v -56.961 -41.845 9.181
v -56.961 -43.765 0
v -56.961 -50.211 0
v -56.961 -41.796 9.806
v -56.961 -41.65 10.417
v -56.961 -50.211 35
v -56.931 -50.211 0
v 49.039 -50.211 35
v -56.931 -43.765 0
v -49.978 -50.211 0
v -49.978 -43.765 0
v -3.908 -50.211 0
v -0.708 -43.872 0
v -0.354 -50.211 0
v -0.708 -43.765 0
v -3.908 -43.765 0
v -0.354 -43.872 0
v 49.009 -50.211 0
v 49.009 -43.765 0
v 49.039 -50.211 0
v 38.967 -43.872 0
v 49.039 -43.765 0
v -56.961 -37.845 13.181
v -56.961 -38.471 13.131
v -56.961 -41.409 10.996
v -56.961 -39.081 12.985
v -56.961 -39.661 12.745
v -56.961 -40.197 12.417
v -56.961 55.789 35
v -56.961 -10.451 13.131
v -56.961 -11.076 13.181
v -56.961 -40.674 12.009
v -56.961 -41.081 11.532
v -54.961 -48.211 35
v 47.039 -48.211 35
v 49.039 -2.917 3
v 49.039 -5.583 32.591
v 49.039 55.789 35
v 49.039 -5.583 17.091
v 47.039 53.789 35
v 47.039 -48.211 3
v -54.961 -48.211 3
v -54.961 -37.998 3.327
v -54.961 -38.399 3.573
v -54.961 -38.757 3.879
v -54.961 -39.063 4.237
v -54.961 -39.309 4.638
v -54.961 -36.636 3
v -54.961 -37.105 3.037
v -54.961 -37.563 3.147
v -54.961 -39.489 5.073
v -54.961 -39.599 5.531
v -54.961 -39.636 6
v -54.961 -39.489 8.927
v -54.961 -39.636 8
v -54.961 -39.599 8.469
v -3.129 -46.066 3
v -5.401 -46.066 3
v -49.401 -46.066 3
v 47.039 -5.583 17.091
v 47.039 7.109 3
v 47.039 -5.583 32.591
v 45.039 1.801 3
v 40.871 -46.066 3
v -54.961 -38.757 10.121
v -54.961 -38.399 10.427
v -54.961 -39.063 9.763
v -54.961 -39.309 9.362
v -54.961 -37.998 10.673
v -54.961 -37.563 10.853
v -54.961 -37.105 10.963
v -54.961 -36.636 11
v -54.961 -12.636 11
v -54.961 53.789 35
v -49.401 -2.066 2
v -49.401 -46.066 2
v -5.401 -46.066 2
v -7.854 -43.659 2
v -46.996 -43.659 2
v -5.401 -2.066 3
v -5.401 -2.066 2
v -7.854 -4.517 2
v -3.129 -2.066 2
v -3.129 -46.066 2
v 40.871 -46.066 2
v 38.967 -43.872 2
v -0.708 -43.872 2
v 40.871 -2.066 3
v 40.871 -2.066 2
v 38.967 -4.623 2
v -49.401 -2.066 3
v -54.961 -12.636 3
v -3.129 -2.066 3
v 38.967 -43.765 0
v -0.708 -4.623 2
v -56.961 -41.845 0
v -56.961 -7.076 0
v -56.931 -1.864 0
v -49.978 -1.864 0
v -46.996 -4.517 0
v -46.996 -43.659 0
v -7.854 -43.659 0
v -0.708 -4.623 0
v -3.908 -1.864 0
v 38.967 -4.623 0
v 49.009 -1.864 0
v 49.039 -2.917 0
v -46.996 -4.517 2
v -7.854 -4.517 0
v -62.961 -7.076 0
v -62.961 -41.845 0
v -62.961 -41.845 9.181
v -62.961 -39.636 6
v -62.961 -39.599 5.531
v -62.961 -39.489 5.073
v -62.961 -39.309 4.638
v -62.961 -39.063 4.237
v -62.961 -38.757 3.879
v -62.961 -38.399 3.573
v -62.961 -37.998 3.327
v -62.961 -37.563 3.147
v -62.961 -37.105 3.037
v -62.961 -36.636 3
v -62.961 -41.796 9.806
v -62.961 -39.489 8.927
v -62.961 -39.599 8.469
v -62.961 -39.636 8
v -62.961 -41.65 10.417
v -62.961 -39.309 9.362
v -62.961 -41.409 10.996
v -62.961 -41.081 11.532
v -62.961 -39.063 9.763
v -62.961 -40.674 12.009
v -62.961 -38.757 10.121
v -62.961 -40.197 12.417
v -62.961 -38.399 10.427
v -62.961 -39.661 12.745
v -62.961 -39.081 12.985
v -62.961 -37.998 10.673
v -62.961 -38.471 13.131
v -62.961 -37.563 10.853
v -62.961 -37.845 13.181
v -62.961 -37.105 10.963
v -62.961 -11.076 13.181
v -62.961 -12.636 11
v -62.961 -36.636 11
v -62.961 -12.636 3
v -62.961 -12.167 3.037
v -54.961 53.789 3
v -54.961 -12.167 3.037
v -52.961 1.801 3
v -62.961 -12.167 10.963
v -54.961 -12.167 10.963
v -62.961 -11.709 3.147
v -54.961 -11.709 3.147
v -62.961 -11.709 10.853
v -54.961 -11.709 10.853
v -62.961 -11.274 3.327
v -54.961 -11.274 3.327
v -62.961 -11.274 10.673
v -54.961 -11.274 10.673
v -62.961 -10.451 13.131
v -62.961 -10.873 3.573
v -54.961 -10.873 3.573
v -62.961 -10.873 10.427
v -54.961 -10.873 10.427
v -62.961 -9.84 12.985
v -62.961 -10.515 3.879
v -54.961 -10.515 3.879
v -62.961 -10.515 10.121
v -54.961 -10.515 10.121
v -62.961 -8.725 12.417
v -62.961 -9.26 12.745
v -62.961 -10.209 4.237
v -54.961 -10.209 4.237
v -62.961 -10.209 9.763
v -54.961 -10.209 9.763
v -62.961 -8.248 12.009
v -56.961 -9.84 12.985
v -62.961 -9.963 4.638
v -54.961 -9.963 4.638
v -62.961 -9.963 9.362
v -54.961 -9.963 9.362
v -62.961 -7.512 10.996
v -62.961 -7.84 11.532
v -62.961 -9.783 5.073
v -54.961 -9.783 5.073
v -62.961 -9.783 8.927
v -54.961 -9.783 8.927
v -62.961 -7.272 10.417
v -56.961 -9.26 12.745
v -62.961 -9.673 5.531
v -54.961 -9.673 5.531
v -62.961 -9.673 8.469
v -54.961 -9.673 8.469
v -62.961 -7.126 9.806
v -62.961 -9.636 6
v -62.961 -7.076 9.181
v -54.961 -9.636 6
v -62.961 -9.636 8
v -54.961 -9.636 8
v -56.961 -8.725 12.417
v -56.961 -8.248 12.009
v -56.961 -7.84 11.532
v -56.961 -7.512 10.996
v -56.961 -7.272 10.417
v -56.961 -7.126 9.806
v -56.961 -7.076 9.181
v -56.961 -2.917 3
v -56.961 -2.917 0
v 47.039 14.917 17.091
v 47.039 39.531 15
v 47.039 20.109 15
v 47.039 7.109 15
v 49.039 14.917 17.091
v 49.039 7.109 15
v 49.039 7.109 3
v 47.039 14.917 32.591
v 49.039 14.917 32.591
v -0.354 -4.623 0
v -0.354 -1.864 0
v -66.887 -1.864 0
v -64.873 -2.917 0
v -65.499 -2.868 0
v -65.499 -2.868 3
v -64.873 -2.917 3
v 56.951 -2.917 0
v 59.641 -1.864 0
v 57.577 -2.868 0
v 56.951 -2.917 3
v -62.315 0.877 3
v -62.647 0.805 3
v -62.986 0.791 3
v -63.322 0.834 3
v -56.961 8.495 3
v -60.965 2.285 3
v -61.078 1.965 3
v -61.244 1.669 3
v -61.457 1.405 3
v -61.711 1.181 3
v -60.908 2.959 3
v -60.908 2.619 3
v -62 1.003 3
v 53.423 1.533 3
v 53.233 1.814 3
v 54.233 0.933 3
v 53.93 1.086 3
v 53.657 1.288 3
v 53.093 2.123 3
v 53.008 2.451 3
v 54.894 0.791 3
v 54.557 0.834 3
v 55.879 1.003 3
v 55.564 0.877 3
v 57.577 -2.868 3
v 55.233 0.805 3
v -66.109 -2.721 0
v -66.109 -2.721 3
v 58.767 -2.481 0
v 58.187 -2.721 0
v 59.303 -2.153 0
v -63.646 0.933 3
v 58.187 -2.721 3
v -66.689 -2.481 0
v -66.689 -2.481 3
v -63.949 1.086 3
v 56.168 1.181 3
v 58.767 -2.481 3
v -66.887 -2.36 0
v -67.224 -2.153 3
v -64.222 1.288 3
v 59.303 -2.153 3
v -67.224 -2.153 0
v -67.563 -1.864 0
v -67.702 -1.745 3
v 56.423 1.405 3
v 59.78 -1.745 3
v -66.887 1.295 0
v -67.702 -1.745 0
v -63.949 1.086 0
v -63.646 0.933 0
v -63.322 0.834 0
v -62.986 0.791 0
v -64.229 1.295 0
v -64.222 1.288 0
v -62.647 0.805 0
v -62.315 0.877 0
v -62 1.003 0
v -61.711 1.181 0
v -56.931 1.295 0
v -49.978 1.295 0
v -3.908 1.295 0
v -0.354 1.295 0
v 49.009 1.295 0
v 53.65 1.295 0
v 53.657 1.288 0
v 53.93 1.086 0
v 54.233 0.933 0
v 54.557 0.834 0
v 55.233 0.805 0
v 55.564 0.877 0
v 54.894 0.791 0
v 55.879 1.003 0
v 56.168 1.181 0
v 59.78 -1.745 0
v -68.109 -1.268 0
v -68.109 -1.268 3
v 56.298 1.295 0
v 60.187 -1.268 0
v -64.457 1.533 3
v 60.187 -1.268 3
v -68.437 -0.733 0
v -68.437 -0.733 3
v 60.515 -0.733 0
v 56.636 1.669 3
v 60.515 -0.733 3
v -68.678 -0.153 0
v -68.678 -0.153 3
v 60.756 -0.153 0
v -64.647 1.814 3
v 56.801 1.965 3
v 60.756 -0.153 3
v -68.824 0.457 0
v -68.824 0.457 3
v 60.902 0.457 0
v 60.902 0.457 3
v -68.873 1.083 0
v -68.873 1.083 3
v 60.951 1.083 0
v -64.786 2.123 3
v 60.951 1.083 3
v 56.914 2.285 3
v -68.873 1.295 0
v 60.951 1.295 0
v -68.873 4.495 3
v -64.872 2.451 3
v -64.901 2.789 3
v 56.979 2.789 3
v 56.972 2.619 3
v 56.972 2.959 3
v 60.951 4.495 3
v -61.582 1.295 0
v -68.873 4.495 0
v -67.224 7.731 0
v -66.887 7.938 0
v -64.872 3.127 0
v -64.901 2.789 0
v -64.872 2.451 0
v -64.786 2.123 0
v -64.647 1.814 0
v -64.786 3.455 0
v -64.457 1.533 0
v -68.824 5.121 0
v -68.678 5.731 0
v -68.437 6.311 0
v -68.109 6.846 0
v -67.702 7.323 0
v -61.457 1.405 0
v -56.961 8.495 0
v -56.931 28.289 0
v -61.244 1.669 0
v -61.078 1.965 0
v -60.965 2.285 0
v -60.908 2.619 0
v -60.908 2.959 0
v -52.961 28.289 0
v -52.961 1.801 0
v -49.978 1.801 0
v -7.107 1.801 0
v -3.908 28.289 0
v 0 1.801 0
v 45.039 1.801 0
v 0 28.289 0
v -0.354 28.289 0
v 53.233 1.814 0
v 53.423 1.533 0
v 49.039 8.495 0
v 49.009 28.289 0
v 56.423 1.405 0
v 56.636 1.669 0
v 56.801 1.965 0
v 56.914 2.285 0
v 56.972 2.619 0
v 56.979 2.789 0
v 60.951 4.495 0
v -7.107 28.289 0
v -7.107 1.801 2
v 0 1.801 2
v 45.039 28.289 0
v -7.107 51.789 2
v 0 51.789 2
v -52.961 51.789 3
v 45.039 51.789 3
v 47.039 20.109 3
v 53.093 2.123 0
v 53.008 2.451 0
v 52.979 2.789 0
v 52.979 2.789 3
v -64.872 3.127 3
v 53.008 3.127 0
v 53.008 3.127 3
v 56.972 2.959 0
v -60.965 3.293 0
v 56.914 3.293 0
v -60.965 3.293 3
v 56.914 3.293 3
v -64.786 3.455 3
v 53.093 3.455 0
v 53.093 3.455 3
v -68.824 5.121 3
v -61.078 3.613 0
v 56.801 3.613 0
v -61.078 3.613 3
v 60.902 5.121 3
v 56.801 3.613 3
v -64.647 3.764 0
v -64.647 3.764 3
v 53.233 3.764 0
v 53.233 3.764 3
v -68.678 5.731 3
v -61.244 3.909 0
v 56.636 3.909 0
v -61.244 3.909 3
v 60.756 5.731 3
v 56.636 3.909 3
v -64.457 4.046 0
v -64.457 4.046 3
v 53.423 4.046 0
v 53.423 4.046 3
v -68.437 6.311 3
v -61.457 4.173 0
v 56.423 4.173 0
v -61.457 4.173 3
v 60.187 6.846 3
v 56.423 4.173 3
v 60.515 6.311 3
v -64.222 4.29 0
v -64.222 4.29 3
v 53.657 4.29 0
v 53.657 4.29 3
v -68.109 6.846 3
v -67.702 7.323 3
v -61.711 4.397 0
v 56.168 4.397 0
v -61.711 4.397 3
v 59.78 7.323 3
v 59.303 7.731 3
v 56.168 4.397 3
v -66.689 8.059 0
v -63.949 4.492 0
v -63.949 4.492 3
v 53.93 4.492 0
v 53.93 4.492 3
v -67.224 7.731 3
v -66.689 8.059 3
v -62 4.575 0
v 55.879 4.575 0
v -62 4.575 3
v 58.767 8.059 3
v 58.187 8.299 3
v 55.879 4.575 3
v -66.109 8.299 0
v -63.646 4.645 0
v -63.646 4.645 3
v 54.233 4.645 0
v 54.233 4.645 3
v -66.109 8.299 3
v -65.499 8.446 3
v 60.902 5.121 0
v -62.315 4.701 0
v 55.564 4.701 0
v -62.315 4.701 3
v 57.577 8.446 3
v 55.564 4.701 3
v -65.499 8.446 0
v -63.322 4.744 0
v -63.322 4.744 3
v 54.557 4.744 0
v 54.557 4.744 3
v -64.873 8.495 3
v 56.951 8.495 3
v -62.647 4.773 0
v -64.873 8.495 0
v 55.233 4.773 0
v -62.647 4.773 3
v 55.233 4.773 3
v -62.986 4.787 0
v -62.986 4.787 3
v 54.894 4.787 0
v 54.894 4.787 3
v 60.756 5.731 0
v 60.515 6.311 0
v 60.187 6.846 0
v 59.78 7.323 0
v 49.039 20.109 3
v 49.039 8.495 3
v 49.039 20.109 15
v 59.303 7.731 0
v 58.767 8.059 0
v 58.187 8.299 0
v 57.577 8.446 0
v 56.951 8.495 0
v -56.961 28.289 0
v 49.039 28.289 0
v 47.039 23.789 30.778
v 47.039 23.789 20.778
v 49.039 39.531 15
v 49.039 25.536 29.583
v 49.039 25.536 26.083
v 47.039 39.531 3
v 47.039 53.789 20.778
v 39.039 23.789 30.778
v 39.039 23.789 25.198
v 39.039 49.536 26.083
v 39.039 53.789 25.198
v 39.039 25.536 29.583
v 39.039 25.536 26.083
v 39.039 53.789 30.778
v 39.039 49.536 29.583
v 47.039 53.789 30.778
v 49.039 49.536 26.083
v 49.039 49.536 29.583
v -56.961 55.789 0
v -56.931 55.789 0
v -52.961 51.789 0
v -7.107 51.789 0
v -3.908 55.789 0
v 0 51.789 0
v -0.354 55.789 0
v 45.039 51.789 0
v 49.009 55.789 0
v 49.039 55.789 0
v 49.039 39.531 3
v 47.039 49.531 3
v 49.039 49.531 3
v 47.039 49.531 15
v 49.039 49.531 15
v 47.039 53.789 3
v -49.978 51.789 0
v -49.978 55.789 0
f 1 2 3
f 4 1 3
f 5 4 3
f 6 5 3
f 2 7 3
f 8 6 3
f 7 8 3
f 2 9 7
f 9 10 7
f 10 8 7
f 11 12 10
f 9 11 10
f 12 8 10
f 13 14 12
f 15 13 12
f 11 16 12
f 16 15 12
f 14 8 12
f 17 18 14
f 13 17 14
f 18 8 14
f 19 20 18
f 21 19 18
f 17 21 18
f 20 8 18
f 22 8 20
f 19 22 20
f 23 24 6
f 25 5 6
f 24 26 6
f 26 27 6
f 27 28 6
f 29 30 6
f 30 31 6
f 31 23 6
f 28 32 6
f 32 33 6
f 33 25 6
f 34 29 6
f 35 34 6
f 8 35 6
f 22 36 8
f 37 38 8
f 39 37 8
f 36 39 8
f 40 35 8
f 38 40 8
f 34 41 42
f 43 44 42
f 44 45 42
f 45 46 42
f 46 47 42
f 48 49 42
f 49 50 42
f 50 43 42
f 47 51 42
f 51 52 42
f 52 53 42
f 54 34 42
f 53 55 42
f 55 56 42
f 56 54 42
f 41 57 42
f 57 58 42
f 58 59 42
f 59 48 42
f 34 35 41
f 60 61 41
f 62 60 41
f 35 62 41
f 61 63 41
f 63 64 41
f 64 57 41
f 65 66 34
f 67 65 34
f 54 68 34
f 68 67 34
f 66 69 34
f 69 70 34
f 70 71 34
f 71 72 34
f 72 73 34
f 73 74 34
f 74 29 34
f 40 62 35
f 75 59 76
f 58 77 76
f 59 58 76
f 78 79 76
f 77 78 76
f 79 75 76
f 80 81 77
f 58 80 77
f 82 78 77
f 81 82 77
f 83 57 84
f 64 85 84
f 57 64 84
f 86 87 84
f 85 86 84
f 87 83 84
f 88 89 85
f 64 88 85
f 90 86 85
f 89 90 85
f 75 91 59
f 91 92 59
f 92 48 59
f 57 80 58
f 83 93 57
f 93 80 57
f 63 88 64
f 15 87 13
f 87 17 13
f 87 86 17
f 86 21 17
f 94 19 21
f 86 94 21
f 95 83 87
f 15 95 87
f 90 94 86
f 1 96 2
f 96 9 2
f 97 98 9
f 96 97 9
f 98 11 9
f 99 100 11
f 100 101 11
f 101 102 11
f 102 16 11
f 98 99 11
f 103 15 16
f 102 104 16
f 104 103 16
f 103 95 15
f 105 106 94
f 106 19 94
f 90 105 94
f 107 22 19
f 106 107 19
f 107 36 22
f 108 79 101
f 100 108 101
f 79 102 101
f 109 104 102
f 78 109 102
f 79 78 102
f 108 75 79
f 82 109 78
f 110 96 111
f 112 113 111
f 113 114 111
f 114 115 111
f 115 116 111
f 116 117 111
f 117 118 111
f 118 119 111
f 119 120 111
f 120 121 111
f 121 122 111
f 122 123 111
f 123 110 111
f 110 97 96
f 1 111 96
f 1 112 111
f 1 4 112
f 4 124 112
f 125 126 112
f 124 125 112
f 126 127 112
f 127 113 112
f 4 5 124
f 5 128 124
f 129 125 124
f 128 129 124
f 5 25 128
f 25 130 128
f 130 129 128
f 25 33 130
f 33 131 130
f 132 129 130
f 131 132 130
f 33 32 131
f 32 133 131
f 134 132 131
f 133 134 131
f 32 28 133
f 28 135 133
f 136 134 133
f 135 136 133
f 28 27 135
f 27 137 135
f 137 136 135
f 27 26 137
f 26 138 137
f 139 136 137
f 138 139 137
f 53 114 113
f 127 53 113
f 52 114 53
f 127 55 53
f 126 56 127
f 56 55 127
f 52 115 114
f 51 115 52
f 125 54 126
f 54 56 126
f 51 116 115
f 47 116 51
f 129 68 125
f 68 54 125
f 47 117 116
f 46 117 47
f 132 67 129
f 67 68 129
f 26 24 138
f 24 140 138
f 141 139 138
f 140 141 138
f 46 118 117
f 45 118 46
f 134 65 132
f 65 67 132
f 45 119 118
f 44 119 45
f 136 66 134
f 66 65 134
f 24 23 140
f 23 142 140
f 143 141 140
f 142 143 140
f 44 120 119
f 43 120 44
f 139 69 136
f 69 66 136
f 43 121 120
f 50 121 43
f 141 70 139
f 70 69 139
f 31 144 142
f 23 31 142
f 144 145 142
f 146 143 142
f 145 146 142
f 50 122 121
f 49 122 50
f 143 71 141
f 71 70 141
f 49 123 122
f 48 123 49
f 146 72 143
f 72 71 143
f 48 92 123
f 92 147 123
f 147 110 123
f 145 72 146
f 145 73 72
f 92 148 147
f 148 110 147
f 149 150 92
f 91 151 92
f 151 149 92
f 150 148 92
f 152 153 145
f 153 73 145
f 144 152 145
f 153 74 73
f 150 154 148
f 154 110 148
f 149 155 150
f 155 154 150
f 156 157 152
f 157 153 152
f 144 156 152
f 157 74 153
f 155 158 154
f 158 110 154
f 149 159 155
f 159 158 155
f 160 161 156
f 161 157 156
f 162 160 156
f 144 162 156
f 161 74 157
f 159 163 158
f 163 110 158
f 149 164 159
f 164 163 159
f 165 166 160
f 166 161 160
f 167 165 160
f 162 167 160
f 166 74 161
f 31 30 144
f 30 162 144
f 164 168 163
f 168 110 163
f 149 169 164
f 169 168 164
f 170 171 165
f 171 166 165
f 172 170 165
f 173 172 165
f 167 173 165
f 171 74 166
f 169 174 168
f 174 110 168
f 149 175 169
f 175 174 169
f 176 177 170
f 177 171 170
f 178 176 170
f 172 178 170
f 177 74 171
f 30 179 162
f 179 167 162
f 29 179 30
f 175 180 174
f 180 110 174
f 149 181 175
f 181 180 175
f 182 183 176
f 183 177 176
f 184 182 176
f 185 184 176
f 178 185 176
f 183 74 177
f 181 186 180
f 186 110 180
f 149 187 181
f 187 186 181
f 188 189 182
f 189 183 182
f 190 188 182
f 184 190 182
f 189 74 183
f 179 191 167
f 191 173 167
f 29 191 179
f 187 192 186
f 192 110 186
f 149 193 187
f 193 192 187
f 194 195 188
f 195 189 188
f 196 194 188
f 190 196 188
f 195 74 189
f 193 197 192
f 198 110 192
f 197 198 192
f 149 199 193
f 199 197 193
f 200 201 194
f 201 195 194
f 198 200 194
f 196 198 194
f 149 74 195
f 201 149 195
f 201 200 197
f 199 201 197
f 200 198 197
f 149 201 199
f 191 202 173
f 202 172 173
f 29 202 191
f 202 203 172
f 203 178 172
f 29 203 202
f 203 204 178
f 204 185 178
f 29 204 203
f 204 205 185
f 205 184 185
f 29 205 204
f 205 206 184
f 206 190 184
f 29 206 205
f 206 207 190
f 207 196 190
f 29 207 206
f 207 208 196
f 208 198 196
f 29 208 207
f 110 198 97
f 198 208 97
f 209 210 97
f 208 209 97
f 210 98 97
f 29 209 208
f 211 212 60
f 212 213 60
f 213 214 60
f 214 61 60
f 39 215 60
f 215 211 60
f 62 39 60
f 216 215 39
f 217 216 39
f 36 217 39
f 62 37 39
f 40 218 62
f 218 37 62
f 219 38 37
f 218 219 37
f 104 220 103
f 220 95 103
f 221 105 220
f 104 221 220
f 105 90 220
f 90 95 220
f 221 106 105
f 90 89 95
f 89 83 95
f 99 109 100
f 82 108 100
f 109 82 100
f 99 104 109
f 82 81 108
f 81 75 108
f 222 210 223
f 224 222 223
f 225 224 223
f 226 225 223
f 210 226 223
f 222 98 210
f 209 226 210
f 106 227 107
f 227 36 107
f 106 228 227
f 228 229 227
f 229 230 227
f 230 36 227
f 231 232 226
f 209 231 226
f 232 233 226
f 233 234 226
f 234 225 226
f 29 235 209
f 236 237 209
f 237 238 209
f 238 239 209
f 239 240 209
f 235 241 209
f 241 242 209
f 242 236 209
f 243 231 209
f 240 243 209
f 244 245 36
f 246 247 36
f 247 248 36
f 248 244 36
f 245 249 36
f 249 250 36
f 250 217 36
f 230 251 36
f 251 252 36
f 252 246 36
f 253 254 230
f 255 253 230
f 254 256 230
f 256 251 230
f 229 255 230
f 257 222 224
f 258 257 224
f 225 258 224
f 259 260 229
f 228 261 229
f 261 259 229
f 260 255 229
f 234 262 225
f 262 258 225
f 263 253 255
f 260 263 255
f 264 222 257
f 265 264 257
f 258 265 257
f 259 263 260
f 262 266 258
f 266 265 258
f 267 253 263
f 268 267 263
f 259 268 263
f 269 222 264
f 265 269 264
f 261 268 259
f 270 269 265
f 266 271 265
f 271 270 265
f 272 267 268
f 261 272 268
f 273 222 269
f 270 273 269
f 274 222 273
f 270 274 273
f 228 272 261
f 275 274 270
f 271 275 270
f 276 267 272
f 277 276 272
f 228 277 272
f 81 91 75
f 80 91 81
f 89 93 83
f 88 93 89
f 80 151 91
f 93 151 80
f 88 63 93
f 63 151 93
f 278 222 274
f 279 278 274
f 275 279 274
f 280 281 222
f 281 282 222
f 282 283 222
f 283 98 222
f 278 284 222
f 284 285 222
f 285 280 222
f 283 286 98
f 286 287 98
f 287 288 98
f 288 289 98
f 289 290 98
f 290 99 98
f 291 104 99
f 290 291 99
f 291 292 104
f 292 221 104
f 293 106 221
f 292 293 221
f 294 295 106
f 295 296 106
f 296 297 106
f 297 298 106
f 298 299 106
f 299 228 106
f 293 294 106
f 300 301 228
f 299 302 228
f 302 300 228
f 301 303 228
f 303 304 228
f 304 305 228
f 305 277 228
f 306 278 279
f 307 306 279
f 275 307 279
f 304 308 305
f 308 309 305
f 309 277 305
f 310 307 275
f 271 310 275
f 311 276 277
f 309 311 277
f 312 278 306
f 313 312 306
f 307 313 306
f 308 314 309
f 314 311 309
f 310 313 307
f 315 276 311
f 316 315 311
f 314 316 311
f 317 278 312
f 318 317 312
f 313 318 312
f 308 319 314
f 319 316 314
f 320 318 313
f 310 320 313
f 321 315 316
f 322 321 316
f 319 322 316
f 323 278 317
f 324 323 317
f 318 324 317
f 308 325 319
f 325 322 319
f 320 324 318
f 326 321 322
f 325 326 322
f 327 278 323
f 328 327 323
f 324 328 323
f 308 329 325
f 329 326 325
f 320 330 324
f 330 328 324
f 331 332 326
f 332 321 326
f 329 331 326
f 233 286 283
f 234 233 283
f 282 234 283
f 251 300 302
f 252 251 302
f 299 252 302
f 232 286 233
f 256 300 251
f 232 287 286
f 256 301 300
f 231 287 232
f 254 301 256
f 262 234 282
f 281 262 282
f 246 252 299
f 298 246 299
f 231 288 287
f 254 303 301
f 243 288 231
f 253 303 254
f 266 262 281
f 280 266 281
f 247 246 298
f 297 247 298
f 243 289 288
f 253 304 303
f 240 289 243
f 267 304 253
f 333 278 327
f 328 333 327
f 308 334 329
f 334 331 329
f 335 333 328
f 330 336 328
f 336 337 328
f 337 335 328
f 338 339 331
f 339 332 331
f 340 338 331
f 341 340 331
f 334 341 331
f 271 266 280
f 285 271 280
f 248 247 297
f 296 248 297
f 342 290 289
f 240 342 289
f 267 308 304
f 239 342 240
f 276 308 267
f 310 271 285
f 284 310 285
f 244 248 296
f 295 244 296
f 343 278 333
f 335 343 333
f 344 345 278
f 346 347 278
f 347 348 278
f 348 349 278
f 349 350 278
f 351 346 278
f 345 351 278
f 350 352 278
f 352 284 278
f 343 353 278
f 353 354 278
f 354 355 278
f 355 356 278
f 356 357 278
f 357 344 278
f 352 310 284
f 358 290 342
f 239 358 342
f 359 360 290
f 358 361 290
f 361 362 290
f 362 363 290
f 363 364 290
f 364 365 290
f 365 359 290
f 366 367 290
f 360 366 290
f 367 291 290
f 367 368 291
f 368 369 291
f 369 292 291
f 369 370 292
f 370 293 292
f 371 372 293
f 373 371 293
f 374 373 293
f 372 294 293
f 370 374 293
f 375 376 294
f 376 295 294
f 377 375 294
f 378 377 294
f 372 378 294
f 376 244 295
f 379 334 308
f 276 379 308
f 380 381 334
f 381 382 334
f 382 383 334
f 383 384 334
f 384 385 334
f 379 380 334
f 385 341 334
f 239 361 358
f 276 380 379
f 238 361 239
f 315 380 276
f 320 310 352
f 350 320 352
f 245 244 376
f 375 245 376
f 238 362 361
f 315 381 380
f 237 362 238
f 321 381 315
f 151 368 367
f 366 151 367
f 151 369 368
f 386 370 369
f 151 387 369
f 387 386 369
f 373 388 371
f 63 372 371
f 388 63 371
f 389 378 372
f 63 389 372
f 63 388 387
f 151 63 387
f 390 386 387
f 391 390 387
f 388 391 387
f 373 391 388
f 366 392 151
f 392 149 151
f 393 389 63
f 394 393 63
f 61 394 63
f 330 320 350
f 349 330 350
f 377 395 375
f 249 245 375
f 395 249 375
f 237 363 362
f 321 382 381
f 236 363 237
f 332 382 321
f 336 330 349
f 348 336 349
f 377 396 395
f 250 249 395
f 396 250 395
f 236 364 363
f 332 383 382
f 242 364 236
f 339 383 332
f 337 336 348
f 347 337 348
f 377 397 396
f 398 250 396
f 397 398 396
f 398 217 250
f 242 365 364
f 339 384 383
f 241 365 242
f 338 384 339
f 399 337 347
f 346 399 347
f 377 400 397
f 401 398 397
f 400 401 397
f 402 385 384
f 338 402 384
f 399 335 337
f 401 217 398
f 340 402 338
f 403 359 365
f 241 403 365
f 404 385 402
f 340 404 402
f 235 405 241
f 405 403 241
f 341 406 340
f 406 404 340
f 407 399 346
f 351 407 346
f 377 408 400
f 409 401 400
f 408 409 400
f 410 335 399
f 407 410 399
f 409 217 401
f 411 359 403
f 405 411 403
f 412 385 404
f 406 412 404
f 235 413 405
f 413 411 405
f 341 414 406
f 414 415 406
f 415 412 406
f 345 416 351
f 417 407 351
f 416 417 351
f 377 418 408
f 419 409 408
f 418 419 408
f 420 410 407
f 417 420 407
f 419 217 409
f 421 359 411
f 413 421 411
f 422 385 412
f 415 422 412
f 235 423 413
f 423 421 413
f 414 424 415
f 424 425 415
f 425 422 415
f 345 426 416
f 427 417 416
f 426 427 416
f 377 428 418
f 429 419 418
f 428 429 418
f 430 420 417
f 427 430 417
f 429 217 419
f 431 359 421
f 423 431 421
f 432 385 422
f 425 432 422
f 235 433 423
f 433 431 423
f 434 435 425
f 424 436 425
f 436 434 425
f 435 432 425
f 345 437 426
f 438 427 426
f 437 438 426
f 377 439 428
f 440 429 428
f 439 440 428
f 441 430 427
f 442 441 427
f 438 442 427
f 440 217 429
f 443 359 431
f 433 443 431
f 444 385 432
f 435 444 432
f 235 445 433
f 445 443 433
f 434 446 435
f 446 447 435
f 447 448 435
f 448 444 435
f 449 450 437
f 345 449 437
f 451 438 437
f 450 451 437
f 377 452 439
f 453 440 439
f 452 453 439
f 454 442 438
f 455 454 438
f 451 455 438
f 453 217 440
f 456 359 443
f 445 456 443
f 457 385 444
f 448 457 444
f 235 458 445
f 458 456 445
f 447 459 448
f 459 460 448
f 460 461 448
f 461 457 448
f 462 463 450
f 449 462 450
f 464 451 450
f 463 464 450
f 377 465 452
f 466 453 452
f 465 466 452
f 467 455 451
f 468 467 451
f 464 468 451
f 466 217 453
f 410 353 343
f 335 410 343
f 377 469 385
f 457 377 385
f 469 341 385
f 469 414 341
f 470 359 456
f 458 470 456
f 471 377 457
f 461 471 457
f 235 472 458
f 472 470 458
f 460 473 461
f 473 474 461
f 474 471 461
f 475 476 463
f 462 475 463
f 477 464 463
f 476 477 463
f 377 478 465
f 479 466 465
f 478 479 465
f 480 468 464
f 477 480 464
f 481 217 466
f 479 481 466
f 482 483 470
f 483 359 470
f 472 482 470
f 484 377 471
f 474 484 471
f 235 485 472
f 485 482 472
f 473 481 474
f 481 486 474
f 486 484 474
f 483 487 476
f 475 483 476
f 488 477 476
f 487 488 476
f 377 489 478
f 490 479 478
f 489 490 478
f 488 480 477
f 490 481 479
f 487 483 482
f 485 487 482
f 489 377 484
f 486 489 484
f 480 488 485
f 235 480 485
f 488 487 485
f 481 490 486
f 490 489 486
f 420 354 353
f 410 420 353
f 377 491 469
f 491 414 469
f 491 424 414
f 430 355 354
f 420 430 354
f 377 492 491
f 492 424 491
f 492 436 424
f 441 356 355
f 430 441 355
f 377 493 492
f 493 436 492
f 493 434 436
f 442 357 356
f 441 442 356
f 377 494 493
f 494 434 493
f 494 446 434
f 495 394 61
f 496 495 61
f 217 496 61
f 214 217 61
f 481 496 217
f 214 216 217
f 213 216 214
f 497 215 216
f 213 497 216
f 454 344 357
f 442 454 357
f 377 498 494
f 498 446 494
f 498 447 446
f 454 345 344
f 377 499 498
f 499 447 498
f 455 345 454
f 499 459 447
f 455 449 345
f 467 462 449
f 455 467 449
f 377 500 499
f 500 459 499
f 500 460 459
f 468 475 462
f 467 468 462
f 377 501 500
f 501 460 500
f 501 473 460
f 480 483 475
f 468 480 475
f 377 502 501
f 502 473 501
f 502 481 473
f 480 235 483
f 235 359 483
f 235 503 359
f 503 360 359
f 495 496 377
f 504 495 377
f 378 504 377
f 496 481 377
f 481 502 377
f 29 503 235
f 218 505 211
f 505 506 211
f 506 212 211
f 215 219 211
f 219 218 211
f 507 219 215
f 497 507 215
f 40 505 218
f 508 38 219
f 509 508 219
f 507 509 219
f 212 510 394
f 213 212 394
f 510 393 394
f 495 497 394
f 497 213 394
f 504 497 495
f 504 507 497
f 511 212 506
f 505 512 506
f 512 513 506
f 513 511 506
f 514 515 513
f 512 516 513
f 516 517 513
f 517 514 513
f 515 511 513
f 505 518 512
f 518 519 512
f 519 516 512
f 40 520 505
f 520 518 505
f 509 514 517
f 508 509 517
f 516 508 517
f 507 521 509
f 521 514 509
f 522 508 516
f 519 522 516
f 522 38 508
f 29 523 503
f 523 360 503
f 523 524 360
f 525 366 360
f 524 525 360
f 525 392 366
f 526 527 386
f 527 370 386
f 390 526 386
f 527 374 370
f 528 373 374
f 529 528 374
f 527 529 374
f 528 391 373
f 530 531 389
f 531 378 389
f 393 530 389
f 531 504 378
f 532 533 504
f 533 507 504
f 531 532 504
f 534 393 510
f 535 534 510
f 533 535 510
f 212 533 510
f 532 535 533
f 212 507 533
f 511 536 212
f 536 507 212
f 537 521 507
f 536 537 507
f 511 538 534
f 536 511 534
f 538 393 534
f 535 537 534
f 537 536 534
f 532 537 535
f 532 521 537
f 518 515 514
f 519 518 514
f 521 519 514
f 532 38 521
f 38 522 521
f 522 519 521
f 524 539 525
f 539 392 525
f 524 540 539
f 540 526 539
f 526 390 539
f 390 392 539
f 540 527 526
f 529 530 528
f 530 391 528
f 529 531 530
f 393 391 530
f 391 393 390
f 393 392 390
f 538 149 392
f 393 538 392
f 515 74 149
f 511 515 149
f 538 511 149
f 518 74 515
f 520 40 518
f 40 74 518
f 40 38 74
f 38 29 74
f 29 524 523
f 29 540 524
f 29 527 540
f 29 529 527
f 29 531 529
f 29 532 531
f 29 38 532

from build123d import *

# Parameters (mm, degrees)
SKETCH_1_W           = 102
SKETCH_1_H           = 54
SKETCH_1_W_2         = 44
SKETCH_1_H_2         = 44
EXTRUDE_1_DEPTH      = 5
SKETCH_2_W           = 102
SKETCH_2_H           = 54
SKETCH_2_W_2         = 98
SKETCH_2_H_2         = 49.988098762
SKETCH_2_W_3         = 44
SKETCH_2_H_3         = 44
SKETCH_2_W_4         = 39.827305616
SKETCH_2_H_4         = 40.011901238
EXTRUDE_2_DEPTH      = 3
SKETCH_3_W           = 106
SKETCH_3_H           = 106
SKETCH_3_W_2         = 102
SKETCH_3_H_2         = 102
EXTRUDE_3_DEPTH      = 30
SKETCH_4_W           = 12
SKETCH_4_H           = 10
SKETCH_4_H_2         = 13
CUT_EXTRUDE_1_DEPTH  = 30
SKETCH_5_W           = 44
SKETCH_5_H           = 44
CUT_EXTRUDE_2_DEPTH  = 3
SKETCH_6_W           = 39.675099194
SKETCH_6_H           = 39.248485224
CUT_EXTRUDE_3_DEPTH  = 87.290021993
SKETCH_8_W           = 39.827305616
SKETCH_8_H           = 40.011901238
SKETCH_8_W_2         = 7.107215528
SKETCH_8_H_2         = 49.988098762
EXTRUDE_5_DEPTH      = 2
EXTRUDE_6_DEPTH      = 2
EXTRUDE_6_DEPTH_BACK = 3
SKETCH_9_W           = 44
SKETCH_9_H           = 44
SKETCH_10_W          = 44
SKETCH_10_H          = 44
CUT_EXTRUDE_5_DEPTH  = 3
SKETCH_11_W          = 39.141831732
SKETCH_11_H          = 39.141831732
CUT_EXTRUDE_6_DEPTH  = 3
SKETCH_12_W          = 10
SKETCH_12_H          = 30
EXTRUDE_7_DEPTH      = 10
SKETCH_13_W          = 3.5
SKETCH_13_H          = 24
CUT_EXTRUDE_7_DEPTH  = 20
CUT_EXTRUDE_8_DEPTH  = 29.999730027
SKETCH_15_W          = 15.5
SKETCH_15_H          = 20.5
CUT_EXTRUDE_9_DEPTH  = 30
SKETCH_18_W          = 102
SKETCH_18_H          = 48
CUT_EXTRUDE_11_DEPTH = 2
CUT_EXTRUDE_12_DEPTH = 124.099226215
EXTRUDE_10_DEPTH     = 6
SKETCH_21_R          = 2
EXTRUDE_11_DEPTH     = 3


with BuildPart() as part:
    # 草图1 → 凸台-拉伸1 (new body)
    with BuildSketch(Plane.XY):
        Polygon((-56.9609375, 55.7890625), (49.0390625, 55.7890625), (49.0390625, -2.2109375), (49.0390625, -50.2109375), (-8.9609375, -50.2109375), (-56.9609375, -50.2109375), (-56.9609375, -2.2109375), align=None)
        with Locations((-3.9609375, 26.7890625)):
            Rectangle(SKETCH_1_W, SKETCH_1_H, mode=Mode.SUBTRACT)
        with Locations((-32.9609375, -26.2109375)):
            Rectangle(SKETCH_1_W_2, SKETCH_1_H_2, mode=Mode.SUBTRACT)
    extrude(amount=EXTRUDE_1_DEPTH)

    # 草图2 → 凸台-拉伸2 (add)
    # profile 1 of 2: a face of its own
    with BuildSketch(Plane(origin=(0, 0, 0), x_dir=(-1, 0, 0), z_dir=(0, 0, -1))):
        with Locations((3.9609375, 26.7890625)):
            Rectangle(SKETCH_2_W, SKETCH_2_H)
        with Locations((3.9609375, 26.795013119)):
            Rectangle(SKETCH_2_W_2, SKETCH_2_H_2, mode=Mode.SUBTRACT)
    # profile 2 of 2: a face of its own
    with BuildSketch(Plane(origin=(0, 0, 0), x_dir=(-1, 0, 0), z_dir=(0, 0, -1))):
        with Locations((32.9609375, -26.2109375)):
            Rectangle(SKETCH_2_W_3, SKETCH_2_H_3)
        with Locations((33.047284692, -26.204986881)):
            Rectangle(SKETCH_2_W_4, SKETCH_2_H_4, mode=Mode.SUBTRACT)
    extrude(amount=-EXTRUDE_2_DEPTH)

    # 草图3 → 凸台-拉伸3 (add)
    with BuildSketch(Plane.XY.offset(5)):
        with Locations((-3.9609375, 2.7890625)):
            Rectangle(SKETCH_3_W, SKETCH_3_H)
        with Locations((-3.9609375, 2.7890625)):
            Rectangle(SKETCH_3_W_2, SKETCH_3_H_2, mode=Mode.SUBTRACT)
    extrude(amount=EXTRUDE_3_DEPTH)

    # 草图4 → 切除-拉伸1 (cut)
    with BuildSketch(Plane(origin=(49.0390625, 0, 0), x_dir=(0, 0, -1), z_dir=(1, 0, 0))):
        with Locations((-9, 44.531190652)):
            Rectangle(SKETCH_4_W, SKETCH_4_H)
        with Locations((-9, 13.608528945)):
            Rectangle(SKETCH_4_W, SKETCH_4_H_2)
    extrude(amount=-CUT_EXTRUDE_1_DEPTH, mode=Mode.SUBTRACT)

    # 草图5 → 切除-拉伸2 (cut)
    with BuildSketch(Plane.XY.offset(5)):
        with Locations((18.871191973, -24.065672965)):
            Rectangle(SKETCH_5_W, SKETCH_5_H)
    extrude(amount=-CUT_EXTRUDE_2_DEPTH, mode=Mode.SUBTRACT)

    # 草图6 → 切除-拉伸3 (cut, through all)
    with BuildSketch(Plane.XY.offset(2)):
        with Locations((19.129543617, -24.247597838)):
            Rectangle(SKETCH_6_W, SKETCH_6_H)
    extrude(amount=-CUT_EXTRUDE_3_DEPTH, mode=Mode.SUBTRACT)

    # 草图8 → 凸台-拉伸5 (add)
    with BuildSketch(Plane(origin=(0, 0, 0), x_dir=(-1, 0, 0), z_dir=(0, 0, -1))):
        with Locations((33.047284692, -26.204986881)):
            Rectangle(SKETCH_8_W, SKETCH_8_H)
        with Locations((3.553607764, 26.795013119)):
            Rectangle(SKETCH_8_W_2, SKETCH_8_H_2)
    extrude(amount=-EXTRUDE_5_DEPTH)

    # 草图9 → 凸台-拉伸6 (add, two sides: drawn at the far end of the back side and taken through both)
    with BuildSketch(Plane.XY.offset(3).offset(-EXTRUDE_6_DEPTH_BACK)):
        with Locations((-32.9609375, -26.2109375)):
            Rectangle(SKETCH_9_W, SKETCH_9_H)
    extrude(amount=EXTRUDE_6_DEPTH + EXTRUDE_6_DEPTH_BACK)

    # 草图10 → 切除-拉伸5 (cut)
    with BuildSketch(Plane.XY.offset(5)):
        with Locations((-27.400759648, -24.065672965)):
            Rectangle(SKETCH_10_W, SKETCH_10_H)
    extrude(amount=-CUT_EXTRUDE_5_DEPTH, mode=Mode.SUBTRACT)

    # 草图11 → 切除-拉伸6 (cut)
    with BuildSketch(Plane.XY.offset(2)):
        with Locations((-27.424705841, -24.087617599)):
            Rectangle(SKETCH_11_W, SKETCH_11_H)
    extrude(amount=-CUT_EXTRUDE_6_DEPTH, mode=Mode.SUBTRACT)

    # 草图12 → 凸台-拉伸7 (add)
    with BuildSketch(Plane(origin=(49.0390625, 0, 0), x_dir=(0, 0, -1), z_dir=(1, 0, 0))):
        with Locations((-25.778359811, 38.789332473)):
            Rectangle(SKETCH_12_W, SKETCH_12_H)
    extrude(amount=-EXTRUDE_7_DEPTH)

    # 草图13 → 切除-拉伸7 (cut)
    with BuildSketch(Plane(origin=(49.0390625, 0, 0), x_dir=(0, 0, -1), z_dir=(1, 0, 0))):
        with Locations((-27.833078142, 37.536383555)):
            Rectangle(SKETCH_13_W, SKETCH_13_H)
    extrude(amount=-CUT_EXTRUDE_7_DEPTH, mode=Mode.SUBTRACT)

    # 草图14 → 切除-拉伸8 (cut)
    with BuildSketch(Plane.XZ.offset(-23.789332473)):
        Polygon((37.906859467, 25.472396685), (38.543242323, 25.472396685), (47.0390625, 20.778359811), (47.0390625, 19.400243598), (37.906859467, 19.400243598), align=None)
    extrude(amount=-CUT_EXTRUDE_8_DEPTH, mode=Mode.SUBTRACT)

    # 草图15 → 切除-拉伸9 (cut)
    with BuildSketch(Plane(origin=(49.0390625, 0, 0), x_dir=(0, 0, -1), z_dir=(1, 0, 0))):
        with Locations((-24.841469183, 4.666763342)):
            Rectangle(SKETCH_15_W, SKETCH_15_H)
    extrude(amount=-CUT_EXTRUDE_9_DEPTH, mode=Mode.SUBTRACT)

    # 草图18 → 切除-拉伸11 (cut)
    with BuildSketch(Plane.XY.offset(5)):
        with Locations((-3.9609375, -24.2109375)):
            Rectangle(SKETCH_18_W, SKETCH_18_H)
    extrude(amount=-CUT_EXTRUDE_11_DEPTH, mode=Mode.SUBTRACT)

    # 草图19 → 切除-拉伸12 (cut, through all)
    with BuildSketch(Plane(origin=(-54.9609375, 0, 0), x_dir=(0, 0, -1), z_dir=(1, 0, 0))):
        with BuildLine():
            Line((-8, -9.636069371), (-6, -9.636069371))
            ThreePointArc((-6, -9.636069371), (-3.878679656, -10.514749028), (-3, -12.636069371))
            Line((-3, -12.636069371), (-3, -36.636069371))
            ThreePointArc((-3, -36.636069371), (-3.878679656, -38.757389715), (-6, -39.636069371))
            Line((-6, -39.636069371), (-8, -39.636069371))
            ThreePointArc((-8, -39.636069371), (-10.121320344, -38.757389715), (-11, -36.636069371))
            Line((-11, -36.636069371), (-11, -12.636069371))
            ThreePointArc((-11, -12.636069371), (-10.121320344, -10.514749028), (-8, -9.636069371))
        make_face()
    extrude(amount=-CUT_EXTRUDE_12_DEPTH, mode=Mode.SUBTRACT)

    # 草图20 → 凸台-拉伸10 (add)
    with BuildSketch(Plane.ZY.offset(56.9609375)):
        with BuildLine():
            Line((3, -36.636069371), (3, -41.845424094))
            Line((3, -41.845424094), (9.180533555, -41.845424094))
            ThreePointArc((9.180533555, -41.845424094), (12.00896068, -40.673851218), (13.180533555, -37.845424094))
            Line((13.180533555, -37.845424094), (13.180533555, -11.076385552))
            ThreePointArc((13.180533555, -11.076385552), (12.00896068, -8.247958428), (9.180533555, -7.076385552))
            Line((9.180533555, -7.076385552), (3, -7.076385552))
            Line((3, -7.076385552), (3, -12.636069371))
            ThreePointArc((3, -12.636069371), (3.878679656, -10.514749028), (6, -9.636069371))
            Line((6, -9.636069371), (8, -9.636069371))
            ThreePointArc((8, -9.636069371), (10.121320344, -10.514749028), (11, -12.636069371))
            Line((11, -12.636069371), (11, -36.636069371))
            ThreePointArc((11, -36.636069371), (10.121320344, -38.757389715), (8, -39.636069371))
            Line((8, -39.636069371), (6, -39.636069371))
            ThreePointArc((6, -39.636069371), (3.878679656, -38.757389715), (3, -36.636069371))
        make_face()
        Polygon((0, -7.076385552), (0, -41.845424094), (3, -41.845424094), (3, -36.636069371), (3, -12.636069371), (3, -7.076385552), align=None)
    extrude(amount=EXTRUDE_10_DEPTH)

    # 草图21 → 凸台-拉伸11 (add)
    # profile 1 of 2: a face of its own
    with BuildSketch(Plane(origin=(0, 0, 0), x_dir=(-1, 0, 0), z_dir=(0, 0, -1))):
        with BuildLine():
            Line((56.9609375, -2.916899347), (64.873289872, -2.916899347))
            ThreePointArc((64.873289872, -2.916899347), (67.701716997, -1.745326471), (68.873289872, 1.083100653))
            Line((68.873289872, 1.083100653), (68.873289872, 4.495024347))
            ThreePointArc((68.873289872, 4.495024347), (67.701716997, 7.323451471), (64.873289872, 8.495024347))
            Line((64.873289872, 8.495024347), (56.9609375, 8.495024347))
            Line((56.9609375, 8.495024347), (56.9609375, -2.916899347))
        make_face()
        with Locations((62.900694294, 2.7890625)):
            Circle(SKETCH_21_R, mode=Mode.SUBTRACT)
    # profile 2 of 2: a face of its own
    with BuildSketch(Plane(origin=(0, 0, 0), x_dir=(-1, 0, 0), z_dir=(0, 0, -1))):
        with BuildLine():
            Line((-60.951414872, 1.083100653), (-60.951414872, 4.495024347))
            ThreePointArc((-60.951414872, 4.495024347), (-59.779841997, 7.323451471), (-56.951414872, 8.495024347))
            Line((-56.951414872, 8.495024347), (-49.0390625, 8.495024347))
            Line((-49.0390625, 8.495024347), (-49.0390625, -2.916899347))
            Line((-49.0390625, -2.916899347), (-56.951414872, -2.916899347))
            ThreePointArc((-56.951414872, -2.916899347), (-59.779841997, -1.745326471), (-60.951414872, 1.083100653))
        make_face()
        with Locations(Location((-54.978819294, 2.7890625, 0), (0, 0, 180))):
            Circle(SKETCH_21_R, mode=Mode.SUBTRACT)
    extrude(amount=-EXTRUDE_11_DEPTH)


solid = part.part
